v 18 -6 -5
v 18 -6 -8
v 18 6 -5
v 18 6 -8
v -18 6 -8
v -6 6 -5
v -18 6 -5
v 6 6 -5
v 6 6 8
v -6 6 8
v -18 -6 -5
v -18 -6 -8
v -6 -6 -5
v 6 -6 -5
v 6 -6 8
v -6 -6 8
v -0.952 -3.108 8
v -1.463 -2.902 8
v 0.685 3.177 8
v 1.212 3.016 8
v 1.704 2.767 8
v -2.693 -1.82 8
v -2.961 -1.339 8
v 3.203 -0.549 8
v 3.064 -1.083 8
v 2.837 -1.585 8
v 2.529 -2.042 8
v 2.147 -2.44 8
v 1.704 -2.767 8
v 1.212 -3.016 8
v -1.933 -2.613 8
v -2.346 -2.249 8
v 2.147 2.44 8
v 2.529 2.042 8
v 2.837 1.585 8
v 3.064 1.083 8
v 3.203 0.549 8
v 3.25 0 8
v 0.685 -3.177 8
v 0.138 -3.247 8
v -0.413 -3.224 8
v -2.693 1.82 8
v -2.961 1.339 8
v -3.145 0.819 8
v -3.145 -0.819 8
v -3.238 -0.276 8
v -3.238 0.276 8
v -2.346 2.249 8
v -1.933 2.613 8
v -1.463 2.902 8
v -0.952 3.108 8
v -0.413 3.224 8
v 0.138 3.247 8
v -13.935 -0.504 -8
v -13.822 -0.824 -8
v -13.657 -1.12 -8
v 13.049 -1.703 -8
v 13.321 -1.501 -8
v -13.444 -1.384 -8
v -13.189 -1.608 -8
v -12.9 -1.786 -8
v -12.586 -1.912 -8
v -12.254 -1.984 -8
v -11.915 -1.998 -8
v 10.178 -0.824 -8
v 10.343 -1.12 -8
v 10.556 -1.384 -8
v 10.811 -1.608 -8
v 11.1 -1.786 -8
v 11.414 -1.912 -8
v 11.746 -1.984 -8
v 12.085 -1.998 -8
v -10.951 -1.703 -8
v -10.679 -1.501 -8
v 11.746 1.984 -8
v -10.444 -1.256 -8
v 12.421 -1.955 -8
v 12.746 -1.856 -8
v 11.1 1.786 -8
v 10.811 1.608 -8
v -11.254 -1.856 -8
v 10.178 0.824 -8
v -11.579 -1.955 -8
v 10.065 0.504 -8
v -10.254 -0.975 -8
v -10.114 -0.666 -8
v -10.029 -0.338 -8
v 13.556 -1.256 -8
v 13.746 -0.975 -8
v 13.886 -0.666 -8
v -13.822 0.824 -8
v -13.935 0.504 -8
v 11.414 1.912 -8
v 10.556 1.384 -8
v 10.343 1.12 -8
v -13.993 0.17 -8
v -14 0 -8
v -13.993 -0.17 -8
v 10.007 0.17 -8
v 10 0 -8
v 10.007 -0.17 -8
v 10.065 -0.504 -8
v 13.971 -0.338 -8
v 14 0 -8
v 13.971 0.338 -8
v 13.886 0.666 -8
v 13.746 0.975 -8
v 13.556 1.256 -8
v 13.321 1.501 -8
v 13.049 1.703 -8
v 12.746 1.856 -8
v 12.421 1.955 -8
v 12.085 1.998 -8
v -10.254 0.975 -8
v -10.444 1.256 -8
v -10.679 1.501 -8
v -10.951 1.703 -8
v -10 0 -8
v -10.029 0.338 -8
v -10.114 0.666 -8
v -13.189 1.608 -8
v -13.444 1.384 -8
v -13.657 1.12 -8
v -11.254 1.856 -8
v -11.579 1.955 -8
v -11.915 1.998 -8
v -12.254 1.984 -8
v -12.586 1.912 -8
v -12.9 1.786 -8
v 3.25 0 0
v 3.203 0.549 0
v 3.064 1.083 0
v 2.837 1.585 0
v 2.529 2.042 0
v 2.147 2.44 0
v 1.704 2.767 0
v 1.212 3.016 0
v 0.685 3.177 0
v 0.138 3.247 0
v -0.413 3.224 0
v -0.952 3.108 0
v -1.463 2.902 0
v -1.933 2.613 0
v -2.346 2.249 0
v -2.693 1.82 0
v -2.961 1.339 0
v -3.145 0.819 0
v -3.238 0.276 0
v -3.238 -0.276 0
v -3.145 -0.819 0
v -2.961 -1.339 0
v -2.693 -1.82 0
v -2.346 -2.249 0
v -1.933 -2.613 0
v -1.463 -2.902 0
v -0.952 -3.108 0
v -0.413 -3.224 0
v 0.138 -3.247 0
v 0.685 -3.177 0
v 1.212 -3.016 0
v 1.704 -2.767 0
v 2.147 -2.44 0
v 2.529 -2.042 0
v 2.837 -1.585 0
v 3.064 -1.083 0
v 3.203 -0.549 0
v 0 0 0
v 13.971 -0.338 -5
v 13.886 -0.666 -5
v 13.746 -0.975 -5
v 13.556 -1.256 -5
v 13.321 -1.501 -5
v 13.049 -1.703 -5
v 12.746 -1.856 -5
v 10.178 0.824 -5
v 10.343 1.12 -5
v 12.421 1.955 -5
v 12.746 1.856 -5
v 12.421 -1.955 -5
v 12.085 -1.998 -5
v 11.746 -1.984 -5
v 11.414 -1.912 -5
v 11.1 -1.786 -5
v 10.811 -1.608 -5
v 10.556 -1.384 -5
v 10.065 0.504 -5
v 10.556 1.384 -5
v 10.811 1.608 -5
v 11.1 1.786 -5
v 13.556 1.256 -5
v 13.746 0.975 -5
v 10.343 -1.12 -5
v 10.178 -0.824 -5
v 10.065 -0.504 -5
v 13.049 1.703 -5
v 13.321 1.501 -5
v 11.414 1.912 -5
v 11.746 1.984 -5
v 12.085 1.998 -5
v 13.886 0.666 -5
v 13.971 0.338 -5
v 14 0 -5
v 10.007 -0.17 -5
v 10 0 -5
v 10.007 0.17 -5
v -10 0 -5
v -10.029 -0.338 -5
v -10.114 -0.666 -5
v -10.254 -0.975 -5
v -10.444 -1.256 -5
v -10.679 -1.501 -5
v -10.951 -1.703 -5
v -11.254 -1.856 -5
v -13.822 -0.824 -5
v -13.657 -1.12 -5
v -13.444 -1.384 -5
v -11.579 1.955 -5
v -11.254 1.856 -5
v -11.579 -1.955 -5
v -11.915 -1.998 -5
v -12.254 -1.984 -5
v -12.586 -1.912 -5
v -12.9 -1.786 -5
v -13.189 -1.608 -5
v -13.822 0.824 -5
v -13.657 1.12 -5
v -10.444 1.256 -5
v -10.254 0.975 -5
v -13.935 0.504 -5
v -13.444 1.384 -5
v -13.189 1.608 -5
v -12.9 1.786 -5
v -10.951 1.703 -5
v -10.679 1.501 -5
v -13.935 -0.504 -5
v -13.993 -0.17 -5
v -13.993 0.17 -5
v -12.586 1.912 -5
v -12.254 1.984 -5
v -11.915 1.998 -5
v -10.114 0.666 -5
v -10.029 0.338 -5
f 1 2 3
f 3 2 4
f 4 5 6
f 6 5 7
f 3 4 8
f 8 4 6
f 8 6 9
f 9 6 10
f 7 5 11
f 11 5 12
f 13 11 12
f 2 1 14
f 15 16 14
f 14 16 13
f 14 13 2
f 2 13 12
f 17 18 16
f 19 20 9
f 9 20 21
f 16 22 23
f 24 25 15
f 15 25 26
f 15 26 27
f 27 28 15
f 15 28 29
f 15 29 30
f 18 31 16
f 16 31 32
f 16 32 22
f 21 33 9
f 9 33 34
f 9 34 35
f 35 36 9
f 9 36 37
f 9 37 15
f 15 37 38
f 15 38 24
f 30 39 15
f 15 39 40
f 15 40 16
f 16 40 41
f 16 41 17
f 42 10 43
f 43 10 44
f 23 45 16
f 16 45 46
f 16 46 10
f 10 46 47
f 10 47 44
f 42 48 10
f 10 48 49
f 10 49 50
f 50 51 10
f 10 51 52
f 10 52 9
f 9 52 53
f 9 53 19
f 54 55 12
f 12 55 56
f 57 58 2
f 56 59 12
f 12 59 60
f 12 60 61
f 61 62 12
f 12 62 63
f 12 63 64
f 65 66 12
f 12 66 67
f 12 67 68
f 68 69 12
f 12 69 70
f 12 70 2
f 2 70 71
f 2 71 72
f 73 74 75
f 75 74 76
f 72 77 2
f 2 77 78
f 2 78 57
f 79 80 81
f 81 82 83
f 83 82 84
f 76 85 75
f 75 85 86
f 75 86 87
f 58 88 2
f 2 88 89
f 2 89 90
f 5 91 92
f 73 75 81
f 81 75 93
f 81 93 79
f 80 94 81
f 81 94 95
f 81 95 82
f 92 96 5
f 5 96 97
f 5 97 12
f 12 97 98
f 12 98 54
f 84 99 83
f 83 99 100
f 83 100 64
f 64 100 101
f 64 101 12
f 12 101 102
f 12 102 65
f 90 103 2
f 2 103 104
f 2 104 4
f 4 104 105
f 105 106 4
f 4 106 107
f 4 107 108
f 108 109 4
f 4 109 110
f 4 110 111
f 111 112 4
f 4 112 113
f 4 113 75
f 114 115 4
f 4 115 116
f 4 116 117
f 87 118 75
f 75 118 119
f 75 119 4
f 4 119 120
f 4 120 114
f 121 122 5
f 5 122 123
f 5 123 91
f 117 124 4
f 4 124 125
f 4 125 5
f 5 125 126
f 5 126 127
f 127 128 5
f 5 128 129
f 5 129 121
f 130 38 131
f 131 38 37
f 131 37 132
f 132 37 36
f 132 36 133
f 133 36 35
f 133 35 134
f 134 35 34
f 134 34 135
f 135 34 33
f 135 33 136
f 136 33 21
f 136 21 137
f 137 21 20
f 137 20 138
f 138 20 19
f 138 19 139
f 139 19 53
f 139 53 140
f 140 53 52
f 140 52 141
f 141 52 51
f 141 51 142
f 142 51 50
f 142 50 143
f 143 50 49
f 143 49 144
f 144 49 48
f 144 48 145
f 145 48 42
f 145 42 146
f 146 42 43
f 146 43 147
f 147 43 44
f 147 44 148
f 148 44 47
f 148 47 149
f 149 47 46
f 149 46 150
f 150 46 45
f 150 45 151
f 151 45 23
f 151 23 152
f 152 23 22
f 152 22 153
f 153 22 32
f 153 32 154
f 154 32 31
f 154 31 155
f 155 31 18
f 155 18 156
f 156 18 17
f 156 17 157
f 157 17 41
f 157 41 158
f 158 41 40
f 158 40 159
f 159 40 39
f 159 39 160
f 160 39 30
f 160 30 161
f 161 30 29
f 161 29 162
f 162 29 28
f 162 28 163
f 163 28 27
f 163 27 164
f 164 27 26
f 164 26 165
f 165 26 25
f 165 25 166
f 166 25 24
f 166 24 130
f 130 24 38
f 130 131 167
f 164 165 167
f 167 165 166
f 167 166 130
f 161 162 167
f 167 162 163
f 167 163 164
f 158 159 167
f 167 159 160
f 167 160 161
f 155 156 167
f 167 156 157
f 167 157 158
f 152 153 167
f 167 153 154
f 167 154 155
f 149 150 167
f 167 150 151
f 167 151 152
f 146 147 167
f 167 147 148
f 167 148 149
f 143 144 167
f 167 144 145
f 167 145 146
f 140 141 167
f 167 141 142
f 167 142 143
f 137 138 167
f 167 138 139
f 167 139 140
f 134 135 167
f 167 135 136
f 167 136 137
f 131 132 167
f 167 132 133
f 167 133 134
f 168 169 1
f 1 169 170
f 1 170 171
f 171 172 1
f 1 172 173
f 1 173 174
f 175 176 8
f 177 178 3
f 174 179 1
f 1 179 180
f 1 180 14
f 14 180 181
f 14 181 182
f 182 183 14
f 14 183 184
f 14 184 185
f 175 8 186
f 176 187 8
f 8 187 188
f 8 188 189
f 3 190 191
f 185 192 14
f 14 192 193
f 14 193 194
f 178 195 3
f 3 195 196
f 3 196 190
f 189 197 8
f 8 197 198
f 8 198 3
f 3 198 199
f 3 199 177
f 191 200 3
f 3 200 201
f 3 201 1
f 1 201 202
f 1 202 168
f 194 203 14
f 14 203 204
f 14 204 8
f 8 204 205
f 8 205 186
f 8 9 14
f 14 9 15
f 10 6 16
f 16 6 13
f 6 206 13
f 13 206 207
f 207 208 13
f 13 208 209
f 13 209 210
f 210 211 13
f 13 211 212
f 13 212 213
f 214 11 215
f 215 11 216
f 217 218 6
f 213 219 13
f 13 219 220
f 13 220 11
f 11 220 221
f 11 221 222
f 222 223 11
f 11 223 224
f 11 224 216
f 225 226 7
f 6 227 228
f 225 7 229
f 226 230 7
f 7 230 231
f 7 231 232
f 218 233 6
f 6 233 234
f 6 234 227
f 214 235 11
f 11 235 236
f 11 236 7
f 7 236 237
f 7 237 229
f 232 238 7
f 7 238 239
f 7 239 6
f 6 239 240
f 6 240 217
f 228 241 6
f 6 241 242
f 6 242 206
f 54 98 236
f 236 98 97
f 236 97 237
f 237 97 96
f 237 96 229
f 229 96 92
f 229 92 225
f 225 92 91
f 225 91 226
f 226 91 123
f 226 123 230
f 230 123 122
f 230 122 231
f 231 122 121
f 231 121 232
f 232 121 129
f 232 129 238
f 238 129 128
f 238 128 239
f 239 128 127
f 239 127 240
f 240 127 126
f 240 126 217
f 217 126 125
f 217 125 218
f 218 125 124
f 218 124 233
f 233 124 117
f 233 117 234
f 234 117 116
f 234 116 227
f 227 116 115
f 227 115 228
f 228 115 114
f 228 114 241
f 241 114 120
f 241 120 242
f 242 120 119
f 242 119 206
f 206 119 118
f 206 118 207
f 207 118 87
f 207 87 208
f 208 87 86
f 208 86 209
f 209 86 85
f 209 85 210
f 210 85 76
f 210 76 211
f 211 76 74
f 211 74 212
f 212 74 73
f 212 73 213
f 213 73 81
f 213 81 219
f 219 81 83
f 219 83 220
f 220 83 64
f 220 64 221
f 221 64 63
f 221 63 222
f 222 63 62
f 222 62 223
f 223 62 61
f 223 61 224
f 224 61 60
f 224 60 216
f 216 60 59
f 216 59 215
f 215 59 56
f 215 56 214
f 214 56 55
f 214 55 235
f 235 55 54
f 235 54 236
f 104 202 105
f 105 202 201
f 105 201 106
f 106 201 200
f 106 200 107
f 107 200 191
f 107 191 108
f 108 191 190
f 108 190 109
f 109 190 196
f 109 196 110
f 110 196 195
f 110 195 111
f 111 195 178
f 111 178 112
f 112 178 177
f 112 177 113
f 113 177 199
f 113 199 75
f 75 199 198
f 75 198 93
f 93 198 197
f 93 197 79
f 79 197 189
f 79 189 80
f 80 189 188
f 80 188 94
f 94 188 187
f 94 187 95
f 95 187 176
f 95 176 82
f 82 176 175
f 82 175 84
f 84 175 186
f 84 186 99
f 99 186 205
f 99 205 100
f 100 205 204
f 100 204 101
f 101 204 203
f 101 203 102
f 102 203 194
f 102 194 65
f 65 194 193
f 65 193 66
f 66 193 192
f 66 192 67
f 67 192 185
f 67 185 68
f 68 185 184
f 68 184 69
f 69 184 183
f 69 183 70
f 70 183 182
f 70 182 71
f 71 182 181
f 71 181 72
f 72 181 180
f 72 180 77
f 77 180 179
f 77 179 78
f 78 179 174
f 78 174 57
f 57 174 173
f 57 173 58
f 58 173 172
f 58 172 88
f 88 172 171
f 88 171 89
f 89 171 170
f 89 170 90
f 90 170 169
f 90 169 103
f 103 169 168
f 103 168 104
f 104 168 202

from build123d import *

# Parameters (mm, degrees)
CROQUIS1_W              = 36
CROQUIS1_H              = 12
SALIENTE_EXTRUIR1_DEPTH = 8
CROQUIS2_R              = 3.25
CORTAR_EXTRUIR1_DEPTH   = 8
CROQUIS3_W              = 12
CROQUIS3_H              = 13
CORTAR_EXTRUIR2_DEPTH   = 24.065125189
CROQUIS4_R              = 2
CORTAR_EXTRUIR3_DEPTH   = 8


with BuildPart() as part:
    # Croquis1 → Saliente-Extruir1 (new, symmetric)
    with BuildSketch(Plane.XY):
        Rectangle(CROQUIS1_W, CROQUIS1_H)
    extrude(amount=SALIENTE_EXTRUIR1_DEPTH, both=True)

    # Croquis2 → Cortar-Extruir1 (cut)
    with BuildSketch(Plane.XY.offset(8)):
        Circle(CROQUIS2_R)
    extrude(amount=-CORTAR_EXTRUIR1_DEPTH, mode=Mode.SUBTRACT)

    # Croquis3 → Cortar-Extruir2 (cut, through all)
    with BuildSketch(Plane.XZ.offset(6)):
        with Locations((-12, 1.5)):
            Rectangle(CROQUIS3_W, CROQUIS3_H)
        with Locations((12, 1.5)):
            Rectangle(CROQUIS3_W, CROQUIS3_H)
    extrude(amount=-CORTAR_EXTRUIR2_DEPTH, mode=Mode.SUBTRACT)

    # Croquis4 → Cortar-Extruir3 (cut)
    with BuildSketch(Plane.XY.offset(-5)):
        with Locations((-12, 0)):
            Circle(CROQUIS4_R)
        with Locations(Location((12, 0, 0), (0, 0, 180))):
            Circle(CROQUIS4_R)
    extrude(amount=-CORTAR_EXTRUIR3_DEPTH, mode=Mode.SUBTRACT)


solid = part.part
